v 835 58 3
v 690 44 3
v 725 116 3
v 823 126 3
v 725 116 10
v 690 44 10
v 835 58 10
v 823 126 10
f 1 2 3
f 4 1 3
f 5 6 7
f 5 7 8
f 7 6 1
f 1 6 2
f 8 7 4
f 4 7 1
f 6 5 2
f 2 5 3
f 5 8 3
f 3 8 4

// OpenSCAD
polyhedron(points=[[690.0, 44.0, 3.0], [835.0, 58.0, 3.0], [823.0, 126.0, 3.0], [725.0, 116.0, 3.0], [690.0, 44.0, 10.0], [835.0, 58.0, 10.0], [823.0, 126.0, 10.0], [725.0, 116.0, 10.0]], faces=[[1, 0, 3], [2, 1, 3], [7, 4, 5], [7, 5, 6], [5, 4, 1], [1, 4, 0], [6, 5, 2], [2, 5, 1], [4, 7, 0], [0, 7, 3], [7, 6, 3], [3, 6, 2]], convexity=30);
